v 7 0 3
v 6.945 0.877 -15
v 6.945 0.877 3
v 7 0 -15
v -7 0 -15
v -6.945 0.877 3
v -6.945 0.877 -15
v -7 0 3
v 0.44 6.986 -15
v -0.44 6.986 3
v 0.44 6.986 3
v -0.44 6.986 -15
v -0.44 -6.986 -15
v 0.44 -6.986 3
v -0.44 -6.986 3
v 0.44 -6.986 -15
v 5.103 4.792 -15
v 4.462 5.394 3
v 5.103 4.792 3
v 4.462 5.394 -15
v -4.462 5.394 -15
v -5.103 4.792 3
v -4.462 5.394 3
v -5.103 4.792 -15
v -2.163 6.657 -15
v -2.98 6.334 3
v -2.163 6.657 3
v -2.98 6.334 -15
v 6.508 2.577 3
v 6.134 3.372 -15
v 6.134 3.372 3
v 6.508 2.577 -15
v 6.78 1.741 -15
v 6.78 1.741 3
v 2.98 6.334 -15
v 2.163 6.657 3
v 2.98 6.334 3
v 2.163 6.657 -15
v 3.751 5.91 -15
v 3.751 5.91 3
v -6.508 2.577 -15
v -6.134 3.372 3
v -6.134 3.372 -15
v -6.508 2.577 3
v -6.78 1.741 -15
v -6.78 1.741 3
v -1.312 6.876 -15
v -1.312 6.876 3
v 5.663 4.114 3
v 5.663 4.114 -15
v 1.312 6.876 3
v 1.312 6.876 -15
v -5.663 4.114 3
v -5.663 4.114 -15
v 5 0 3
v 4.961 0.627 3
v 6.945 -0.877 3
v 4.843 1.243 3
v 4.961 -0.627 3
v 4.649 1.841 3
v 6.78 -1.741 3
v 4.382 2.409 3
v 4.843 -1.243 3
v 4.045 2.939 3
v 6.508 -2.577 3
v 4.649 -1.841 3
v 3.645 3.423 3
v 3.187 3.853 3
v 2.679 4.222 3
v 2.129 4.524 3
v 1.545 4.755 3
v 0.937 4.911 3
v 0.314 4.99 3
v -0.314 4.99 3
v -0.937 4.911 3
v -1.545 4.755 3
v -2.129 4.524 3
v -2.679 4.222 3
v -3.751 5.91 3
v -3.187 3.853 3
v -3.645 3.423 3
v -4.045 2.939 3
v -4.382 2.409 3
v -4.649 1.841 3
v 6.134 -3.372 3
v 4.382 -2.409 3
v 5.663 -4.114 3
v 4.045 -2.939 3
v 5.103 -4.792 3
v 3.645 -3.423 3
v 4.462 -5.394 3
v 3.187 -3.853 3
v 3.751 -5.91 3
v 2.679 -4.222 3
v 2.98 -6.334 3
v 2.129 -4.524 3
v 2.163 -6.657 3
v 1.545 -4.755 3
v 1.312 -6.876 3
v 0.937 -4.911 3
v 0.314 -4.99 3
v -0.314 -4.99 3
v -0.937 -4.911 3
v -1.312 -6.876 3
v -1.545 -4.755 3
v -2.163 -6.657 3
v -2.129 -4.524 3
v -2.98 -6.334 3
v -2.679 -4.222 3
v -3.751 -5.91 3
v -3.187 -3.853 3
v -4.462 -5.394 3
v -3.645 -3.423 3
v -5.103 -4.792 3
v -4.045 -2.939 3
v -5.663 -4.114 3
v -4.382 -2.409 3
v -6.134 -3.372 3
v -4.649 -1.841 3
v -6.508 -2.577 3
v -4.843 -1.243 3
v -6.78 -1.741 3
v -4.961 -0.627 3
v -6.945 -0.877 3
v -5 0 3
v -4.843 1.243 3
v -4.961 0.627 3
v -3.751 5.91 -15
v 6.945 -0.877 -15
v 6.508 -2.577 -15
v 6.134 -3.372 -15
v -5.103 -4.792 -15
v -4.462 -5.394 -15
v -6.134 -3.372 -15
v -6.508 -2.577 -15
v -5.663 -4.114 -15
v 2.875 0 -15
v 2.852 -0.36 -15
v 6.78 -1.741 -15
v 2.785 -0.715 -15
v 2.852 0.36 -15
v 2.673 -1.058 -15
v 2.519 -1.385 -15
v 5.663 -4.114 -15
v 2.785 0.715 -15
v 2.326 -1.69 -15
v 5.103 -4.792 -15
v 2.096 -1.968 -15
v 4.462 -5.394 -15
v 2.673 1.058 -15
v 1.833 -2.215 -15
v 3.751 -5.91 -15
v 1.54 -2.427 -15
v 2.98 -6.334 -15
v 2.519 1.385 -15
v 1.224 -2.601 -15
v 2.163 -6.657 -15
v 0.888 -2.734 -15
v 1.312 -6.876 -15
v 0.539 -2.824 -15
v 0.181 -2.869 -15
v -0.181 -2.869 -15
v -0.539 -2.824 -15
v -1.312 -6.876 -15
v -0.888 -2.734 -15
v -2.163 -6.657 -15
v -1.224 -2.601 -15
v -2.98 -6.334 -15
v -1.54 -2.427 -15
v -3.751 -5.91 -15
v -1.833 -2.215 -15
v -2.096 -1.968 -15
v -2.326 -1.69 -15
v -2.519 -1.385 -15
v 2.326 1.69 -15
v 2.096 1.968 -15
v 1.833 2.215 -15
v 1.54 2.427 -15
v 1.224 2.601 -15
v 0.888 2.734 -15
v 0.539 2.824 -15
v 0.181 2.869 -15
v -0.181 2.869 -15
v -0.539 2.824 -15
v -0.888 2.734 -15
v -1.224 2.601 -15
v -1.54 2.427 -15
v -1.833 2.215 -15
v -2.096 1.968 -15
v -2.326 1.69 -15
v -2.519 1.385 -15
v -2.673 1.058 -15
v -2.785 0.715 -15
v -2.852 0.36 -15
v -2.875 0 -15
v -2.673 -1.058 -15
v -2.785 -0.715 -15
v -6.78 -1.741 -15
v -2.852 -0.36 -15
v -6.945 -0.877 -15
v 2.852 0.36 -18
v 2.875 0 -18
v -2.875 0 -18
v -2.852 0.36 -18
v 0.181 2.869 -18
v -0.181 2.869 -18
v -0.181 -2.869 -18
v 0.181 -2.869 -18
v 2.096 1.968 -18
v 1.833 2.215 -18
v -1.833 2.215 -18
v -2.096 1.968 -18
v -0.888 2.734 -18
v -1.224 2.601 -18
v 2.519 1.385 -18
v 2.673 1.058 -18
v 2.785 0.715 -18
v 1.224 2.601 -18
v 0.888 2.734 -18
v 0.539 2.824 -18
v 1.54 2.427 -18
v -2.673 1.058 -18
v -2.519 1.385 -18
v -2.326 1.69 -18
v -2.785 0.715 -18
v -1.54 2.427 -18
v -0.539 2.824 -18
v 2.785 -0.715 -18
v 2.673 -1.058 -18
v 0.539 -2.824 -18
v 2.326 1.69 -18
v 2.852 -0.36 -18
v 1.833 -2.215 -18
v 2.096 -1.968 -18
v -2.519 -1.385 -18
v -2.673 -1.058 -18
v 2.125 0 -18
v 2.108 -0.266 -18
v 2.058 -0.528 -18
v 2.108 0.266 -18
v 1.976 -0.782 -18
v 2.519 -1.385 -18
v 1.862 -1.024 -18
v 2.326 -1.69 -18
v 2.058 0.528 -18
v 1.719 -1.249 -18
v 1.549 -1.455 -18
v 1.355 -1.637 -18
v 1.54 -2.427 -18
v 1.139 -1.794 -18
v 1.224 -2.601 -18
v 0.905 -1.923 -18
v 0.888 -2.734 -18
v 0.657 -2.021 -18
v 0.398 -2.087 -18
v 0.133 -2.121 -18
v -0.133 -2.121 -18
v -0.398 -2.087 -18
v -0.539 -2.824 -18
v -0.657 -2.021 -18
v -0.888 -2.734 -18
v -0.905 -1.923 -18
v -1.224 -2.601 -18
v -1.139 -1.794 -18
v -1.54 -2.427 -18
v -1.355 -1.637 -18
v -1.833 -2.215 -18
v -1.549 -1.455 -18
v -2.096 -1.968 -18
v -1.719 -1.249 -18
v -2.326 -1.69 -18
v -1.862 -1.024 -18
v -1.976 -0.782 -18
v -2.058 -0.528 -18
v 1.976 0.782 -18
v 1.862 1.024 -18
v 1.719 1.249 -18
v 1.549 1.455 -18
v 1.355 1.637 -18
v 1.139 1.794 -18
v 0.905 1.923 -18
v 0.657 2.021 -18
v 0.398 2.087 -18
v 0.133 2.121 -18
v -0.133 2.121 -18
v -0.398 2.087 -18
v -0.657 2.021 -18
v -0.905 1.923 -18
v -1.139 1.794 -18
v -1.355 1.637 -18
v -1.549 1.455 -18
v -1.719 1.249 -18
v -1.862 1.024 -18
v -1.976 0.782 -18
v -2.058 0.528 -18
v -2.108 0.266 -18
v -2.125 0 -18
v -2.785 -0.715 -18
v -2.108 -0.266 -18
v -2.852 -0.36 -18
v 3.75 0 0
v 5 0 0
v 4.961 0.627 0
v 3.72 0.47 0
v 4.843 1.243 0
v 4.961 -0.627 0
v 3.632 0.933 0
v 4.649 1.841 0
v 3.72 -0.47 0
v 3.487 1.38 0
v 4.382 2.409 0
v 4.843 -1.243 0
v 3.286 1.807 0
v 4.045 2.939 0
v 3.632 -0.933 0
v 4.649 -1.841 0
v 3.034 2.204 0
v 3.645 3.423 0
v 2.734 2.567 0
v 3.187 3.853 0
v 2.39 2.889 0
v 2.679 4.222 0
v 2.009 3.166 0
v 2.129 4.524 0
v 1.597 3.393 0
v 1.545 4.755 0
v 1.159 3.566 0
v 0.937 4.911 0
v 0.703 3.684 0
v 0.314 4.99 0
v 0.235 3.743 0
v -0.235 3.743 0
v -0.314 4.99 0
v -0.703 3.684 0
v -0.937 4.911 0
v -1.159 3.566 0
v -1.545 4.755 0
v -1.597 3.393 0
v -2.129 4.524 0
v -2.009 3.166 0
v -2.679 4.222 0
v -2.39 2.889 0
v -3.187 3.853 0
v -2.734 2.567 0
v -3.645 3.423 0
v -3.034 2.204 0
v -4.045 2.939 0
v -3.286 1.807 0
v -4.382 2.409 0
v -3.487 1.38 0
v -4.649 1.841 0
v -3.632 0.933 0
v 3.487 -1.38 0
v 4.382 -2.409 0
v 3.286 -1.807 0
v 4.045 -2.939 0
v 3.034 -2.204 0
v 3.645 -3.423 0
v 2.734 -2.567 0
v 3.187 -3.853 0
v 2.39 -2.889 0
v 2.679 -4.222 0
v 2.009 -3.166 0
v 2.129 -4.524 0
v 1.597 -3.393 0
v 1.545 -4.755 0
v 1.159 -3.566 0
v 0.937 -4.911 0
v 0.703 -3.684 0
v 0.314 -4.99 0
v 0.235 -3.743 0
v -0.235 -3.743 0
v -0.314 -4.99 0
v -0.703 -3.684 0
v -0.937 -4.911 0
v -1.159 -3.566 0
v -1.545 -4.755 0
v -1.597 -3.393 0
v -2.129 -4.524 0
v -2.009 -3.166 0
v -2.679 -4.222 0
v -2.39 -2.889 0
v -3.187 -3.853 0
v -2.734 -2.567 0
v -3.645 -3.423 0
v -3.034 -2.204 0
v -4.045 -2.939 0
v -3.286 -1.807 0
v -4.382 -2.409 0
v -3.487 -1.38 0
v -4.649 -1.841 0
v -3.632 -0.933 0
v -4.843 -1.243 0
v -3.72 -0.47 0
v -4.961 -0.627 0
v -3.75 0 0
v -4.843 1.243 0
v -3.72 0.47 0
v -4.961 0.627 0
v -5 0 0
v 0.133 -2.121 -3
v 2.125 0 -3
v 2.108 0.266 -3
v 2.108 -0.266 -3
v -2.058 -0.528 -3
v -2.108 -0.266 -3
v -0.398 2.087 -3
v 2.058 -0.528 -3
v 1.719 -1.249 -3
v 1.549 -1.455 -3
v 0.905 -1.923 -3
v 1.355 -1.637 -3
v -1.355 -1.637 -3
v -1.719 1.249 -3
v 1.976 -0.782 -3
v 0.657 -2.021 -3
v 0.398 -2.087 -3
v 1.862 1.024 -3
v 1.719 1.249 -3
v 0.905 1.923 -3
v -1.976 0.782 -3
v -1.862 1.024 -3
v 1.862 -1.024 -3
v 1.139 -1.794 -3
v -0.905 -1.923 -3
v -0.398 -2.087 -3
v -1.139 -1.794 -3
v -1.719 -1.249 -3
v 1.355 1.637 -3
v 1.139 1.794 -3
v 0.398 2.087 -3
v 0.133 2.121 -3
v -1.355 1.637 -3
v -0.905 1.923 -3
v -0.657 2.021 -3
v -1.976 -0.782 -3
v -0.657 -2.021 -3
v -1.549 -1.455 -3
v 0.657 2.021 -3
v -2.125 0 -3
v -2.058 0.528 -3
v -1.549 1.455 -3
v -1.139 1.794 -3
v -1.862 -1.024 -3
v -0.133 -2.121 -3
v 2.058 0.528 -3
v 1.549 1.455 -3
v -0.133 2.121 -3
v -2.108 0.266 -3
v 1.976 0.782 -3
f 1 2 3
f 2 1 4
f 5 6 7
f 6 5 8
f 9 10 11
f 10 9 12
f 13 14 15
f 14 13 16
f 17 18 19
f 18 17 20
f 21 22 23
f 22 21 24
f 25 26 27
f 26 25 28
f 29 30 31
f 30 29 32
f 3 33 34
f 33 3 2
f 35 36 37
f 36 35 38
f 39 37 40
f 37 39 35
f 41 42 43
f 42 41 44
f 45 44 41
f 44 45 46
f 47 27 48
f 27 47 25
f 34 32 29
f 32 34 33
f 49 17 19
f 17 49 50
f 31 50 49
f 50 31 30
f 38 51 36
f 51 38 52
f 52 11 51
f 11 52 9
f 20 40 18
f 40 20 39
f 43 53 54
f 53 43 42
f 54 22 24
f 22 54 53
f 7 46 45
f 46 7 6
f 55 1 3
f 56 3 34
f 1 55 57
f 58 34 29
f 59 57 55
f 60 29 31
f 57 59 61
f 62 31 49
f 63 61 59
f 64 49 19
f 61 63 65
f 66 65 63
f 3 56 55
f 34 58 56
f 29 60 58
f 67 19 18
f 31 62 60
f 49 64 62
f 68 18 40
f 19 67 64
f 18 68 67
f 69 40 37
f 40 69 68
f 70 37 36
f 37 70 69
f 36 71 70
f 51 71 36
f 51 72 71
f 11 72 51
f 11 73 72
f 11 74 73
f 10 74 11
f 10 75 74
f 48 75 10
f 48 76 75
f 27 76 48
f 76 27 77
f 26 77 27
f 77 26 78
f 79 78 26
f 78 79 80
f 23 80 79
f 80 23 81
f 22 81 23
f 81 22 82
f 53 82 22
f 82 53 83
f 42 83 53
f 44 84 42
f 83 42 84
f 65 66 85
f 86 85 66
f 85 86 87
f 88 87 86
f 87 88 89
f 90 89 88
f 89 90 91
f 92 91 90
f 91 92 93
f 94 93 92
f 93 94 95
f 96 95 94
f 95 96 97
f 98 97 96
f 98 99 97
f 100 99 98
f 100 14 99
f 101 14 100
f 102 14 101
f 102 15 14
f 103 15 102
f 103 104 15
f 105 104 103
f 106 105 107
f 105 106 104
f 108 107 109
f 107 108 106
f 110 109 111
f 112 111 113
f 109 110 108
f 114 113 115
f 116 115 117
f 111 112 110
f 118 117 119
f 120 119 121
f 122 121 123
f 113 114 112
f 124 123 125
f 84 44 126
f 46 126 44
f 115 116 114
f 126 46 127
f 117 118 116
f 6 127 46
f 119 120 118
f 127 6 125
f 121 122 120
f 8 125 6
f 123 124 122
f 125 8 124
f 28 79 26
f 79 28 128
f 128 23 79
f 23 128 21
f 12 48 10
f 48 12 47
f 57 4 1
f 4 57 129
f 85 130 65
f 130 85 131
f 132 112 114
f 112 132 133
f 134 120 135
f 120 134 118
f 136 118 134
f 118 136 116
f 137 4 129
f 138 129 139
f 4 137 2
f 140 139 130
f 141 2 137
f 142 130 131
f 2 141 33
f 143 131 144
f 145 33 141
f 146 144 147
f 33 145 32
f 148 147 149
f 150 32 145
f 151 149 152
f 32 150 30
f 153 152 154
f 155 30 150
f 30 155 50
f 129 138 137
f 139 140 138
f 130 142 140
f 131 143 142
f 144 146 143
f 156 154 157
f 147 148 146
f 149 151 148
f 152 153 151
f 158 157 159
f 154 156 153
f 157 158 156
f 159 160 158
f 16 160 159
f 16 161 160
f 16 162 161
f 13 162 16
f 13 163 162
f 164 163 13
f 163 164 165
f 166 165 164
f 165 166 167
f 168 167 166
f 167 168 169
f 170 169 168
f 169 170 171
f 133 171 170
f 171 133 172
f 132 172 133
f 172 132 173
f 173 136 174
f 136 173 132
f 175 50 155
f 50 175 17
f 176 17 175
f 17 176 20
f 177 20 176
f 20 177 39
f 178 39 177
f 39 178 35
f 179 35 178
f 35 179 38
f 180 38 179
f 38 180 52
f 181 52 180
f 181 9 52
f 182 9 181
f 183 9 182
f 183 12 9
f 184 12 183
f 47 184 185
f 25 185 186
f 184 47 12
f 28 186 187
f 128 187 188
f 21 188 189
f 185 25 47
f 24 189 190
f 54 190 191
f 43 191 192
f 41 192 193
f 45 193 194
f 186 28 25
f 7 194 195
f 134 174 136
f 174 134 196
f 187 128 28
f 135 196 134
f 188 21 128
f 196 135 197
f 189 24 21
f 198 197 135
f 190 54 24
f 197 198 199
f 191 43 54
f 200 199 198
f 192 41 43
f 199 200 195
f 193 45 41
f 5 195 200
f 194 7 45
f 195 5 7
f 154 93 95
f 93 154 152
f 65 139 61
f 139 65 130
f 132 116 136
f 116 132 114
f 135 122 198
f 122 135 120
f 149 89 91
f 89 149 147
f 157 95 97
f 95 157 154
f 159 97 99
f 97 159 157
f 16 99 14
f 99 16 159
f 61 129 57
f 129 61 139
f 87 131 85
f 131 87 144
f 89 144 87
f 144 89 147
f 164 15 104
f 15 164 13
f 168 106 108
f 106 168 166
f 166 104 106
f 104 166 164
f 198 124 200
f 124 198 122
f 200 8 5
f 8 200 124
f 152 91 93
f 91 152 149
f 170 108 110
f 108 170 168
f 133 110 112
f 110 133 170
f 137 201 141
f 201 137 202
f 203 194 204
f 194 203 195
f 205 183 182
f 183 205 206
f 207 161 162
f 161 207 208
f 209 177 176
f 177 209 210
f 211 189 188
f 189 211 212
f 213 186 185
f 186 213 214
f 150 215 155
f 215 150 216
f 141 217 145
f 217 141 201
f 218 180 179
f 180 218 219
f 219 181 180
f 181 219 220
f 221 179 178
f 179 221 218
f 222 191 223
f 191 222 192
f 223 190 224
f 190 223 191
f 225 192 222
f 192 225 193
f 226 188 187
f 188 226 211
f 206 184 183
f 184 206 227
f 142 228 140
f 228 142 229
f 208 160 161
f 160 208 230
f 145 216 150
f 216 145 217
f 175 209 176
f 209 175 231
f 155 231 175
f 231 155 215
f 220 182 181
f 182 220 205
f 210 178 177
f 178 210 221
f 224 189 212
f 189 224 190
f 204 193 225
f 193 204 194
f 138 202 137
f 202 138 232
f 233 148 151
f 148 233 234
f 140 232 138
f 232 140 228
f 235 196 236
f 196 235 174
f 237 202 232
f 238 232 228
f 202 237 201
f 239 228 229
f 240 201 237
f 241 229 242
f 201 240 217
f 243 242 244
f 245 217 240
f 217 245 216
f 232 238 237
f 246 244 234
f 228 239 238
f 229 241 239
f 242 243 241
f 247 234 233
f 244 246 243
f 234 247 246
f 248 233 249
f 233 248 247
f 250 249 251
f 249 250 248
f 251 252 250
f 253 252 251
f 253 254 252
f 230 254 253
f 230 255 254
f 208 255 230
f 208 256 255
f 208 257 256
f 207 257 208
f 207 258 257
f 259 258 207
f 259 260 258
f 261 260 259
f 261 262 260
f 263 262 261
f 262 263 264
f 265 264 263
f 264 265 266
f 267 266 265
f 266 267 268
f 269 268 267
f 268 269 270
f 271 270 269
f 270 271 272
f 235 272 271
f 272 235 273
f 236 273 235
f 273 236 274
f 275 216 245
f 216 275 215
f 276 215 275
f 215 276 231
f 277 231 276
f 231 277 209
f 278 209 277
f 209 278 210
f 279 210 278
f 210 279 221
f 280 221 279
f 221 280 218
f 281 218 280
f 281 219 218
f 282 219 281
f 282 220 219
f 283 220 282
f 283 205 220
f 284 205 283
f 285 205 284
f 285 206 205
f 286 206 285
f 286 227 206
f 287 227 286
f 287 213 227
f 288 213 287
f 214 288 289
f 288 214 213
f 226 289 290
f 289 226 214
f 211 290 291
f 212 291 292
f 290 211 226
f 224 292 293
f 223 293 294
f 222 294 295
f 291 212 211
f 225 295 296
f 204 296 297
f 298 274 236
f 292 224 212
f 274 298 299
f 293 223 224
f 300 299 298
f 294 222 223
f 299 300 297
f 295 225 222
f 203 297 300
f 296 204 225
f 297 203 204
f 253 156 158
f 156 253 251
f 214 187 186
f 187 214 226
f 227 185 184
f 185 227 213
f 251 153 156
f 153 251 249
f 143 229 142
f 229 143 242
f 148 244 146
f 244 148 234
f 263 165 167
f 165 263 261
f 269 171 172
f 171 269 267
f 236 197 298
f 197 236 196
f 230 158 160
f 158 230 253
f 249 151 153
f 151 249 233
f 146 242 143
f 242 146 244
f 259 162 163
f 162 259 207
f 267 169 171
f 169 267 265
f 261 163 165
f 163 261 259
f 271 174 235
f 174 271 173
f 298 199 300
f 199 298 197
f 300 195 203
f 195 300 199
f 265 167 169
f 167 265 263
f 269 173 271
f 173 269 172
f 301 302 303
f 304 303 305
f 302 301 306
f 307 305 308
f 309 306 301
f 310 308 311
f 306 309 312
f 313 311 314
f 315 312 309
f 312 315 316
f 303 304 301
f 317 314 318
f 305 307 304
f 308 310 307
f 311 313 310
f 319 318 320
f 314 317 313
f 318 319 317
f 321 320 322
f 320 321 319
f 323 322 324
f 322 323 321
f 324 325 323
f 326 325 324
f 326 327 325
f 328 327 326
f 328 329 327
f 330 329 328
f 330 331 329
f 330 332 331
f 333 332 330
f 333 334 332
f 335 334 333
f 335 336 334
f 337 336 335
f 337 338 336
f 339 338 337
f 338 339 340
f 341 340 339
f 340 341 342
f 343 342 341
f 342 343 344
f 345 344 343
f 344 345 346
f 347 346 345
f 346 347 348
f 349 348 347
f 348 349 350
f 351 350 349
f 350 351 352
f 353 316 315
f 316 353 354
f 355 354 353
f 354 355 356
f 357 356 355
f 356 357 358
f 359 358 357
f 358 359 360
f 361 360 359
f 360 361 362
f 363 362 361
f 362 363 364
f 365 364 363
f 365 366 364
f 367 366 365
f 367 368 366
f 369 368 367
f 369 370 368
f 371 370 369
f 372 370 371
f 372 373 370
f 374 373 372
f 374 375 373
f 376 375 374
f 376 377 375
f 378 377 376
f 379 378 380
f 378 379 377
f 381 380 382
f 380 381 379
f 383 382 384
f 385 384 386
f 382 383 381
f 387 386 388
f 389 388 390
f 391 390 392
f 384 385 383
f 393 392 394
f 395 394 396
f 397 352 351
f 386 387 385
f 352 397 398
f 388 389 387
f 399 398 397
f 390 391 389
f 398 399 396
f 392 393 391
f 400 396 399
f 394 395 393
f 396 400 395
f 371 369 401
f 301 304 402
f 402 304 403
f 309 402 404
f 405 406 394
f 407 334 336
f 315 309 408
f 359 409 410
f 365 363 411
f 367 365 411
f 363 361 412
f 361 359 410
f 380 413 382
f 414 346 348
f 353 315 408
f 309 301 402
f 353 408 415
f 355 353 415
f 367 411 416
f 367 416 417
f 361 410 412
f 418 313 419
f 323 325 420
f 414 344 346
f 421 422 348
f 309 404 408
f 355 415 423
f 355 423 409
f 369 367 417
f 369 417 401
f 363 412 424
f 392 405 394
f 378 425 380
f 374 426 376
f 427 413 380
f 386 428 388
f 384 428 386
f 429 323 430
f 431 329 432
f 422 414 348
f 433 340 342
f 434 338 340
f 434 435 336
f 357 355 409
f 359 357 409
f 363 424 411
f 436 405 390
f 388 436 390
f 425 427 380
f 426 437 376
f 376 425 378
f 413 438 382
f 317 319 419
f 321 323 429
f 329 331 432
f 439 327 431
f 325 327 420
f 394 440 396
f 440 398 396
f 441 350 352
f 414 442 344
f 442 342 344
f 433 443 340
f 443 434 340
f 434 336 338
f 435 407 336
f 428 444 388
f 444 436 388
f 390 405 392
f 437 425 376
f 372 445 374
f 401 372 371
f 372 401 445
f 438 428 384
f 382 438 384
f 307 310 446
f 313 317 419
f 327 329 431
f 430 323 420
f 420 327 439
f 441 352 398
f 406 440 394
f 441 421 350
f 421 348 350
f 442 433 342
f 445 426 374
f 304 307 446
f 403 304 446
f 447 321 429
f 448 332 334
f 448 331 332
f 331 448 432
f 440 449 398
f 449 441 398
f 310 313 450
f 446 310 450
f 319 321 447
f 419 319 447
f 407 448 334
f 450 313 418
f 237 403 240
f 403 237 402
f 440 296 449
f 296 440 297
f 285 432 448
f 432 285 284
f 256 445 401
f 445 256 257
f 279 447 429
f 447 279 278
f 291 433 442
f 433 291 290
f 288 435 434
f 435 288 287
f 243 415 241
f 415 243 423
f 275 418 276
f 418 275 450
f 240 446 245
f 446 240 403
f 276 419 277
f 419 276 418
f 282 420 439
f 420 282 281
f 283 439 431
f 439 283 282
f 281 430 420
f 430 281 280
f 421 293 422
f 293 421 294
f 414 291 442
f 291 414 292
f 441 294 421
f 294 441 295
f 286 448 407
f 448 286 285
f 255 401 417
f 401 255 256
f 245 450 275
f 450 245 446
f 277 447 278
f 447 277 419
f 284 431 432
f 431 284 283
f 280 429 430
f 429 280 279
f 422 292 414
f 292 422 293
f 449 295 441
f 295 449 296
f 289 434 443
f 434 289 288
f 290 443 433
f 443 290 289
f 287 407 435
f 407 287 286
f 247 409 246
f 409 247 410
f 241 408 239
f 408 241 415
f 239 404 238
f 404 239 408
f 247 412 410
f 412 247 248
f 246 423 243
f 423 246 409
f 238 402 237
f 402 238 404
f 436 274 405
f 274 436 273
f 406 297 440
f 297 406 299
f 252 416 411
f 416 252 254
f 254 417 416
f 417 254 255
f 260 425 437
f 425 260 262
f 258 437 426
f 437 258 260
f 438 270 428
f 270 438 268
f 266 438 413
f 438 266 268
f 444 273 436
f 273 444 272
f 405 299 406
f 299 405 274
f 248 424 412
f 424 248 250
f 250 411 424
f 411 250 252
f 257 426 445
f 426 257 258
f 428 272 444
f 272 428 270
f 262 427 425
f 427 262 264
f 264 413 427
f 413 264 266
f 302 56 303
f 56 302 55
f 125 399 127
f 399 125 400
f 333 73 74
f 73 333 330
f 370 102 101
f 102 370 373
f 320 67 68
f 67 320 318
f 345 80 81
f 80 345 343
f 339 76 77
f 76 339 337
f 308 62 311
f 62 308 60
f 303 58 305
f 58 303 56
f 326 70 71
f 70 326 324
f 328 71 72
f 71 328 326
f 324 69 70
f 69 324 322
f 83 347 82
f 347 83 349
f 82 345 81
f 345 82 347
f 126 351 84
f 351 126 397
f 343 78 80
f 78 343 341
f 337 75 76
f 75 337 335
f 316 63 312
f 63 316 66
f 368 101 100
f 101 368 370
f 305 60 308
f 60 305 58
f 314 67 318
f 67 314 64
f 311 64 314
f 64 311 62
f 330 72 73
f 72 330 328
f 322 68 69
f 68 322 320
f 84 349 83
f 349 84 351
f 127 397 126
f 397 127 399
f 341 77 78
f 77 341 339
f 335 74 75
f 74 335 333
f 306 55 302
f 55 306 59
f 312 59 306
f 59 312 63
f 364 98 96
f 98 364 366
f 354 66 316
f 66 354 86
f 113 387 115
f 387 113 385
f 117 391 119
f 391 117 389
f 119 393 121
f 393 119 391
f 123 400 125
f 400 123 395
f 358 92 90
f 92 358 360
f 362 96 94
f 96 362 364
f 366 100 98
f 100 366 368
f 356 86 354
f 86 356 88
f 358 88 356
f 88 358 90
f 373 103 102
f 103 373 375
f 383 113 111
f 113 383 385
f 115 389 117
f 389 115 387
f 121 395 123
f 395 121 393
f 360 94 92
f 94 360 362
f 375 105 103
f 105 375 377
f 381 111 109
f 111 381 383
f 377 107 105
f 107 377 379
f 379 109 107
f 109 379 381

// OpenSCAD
$fn = 50;

difference() {
	union() {
		translate(v = [0, 0, -15.0]) {
			cylinder(h = 18, r = 7.0);
		}
		#translate(v = [0, 0, -18.0]) {
			cylinder(h = 18, r = 2.875);
		}
	}
	union() {
		translate(v = [0, 0, 0]) {
			rotate(a = [0, 0, 0]) {
				difference() {
					union() {
						translate(v = [0, 0, -18.0]) {
							cylinder(h = 18, r = 2.0);
						}
						translate(v = [0, 0, -3]) {
							cylinder(h = 3, r1 = 2.125, r2 = 3.75);
						}
						translate(v = [0, 0, -18.0]) {
							cylinder(h = 18, r = 2.125);
						}
						translate(v = [0, 0, -18.0]) {
							cylinder(h = 18, r = 2.0);
						}
					}
					union();
				}
			}
		}
		#cylinder(h = 3, r = 5.0);
	}
}
